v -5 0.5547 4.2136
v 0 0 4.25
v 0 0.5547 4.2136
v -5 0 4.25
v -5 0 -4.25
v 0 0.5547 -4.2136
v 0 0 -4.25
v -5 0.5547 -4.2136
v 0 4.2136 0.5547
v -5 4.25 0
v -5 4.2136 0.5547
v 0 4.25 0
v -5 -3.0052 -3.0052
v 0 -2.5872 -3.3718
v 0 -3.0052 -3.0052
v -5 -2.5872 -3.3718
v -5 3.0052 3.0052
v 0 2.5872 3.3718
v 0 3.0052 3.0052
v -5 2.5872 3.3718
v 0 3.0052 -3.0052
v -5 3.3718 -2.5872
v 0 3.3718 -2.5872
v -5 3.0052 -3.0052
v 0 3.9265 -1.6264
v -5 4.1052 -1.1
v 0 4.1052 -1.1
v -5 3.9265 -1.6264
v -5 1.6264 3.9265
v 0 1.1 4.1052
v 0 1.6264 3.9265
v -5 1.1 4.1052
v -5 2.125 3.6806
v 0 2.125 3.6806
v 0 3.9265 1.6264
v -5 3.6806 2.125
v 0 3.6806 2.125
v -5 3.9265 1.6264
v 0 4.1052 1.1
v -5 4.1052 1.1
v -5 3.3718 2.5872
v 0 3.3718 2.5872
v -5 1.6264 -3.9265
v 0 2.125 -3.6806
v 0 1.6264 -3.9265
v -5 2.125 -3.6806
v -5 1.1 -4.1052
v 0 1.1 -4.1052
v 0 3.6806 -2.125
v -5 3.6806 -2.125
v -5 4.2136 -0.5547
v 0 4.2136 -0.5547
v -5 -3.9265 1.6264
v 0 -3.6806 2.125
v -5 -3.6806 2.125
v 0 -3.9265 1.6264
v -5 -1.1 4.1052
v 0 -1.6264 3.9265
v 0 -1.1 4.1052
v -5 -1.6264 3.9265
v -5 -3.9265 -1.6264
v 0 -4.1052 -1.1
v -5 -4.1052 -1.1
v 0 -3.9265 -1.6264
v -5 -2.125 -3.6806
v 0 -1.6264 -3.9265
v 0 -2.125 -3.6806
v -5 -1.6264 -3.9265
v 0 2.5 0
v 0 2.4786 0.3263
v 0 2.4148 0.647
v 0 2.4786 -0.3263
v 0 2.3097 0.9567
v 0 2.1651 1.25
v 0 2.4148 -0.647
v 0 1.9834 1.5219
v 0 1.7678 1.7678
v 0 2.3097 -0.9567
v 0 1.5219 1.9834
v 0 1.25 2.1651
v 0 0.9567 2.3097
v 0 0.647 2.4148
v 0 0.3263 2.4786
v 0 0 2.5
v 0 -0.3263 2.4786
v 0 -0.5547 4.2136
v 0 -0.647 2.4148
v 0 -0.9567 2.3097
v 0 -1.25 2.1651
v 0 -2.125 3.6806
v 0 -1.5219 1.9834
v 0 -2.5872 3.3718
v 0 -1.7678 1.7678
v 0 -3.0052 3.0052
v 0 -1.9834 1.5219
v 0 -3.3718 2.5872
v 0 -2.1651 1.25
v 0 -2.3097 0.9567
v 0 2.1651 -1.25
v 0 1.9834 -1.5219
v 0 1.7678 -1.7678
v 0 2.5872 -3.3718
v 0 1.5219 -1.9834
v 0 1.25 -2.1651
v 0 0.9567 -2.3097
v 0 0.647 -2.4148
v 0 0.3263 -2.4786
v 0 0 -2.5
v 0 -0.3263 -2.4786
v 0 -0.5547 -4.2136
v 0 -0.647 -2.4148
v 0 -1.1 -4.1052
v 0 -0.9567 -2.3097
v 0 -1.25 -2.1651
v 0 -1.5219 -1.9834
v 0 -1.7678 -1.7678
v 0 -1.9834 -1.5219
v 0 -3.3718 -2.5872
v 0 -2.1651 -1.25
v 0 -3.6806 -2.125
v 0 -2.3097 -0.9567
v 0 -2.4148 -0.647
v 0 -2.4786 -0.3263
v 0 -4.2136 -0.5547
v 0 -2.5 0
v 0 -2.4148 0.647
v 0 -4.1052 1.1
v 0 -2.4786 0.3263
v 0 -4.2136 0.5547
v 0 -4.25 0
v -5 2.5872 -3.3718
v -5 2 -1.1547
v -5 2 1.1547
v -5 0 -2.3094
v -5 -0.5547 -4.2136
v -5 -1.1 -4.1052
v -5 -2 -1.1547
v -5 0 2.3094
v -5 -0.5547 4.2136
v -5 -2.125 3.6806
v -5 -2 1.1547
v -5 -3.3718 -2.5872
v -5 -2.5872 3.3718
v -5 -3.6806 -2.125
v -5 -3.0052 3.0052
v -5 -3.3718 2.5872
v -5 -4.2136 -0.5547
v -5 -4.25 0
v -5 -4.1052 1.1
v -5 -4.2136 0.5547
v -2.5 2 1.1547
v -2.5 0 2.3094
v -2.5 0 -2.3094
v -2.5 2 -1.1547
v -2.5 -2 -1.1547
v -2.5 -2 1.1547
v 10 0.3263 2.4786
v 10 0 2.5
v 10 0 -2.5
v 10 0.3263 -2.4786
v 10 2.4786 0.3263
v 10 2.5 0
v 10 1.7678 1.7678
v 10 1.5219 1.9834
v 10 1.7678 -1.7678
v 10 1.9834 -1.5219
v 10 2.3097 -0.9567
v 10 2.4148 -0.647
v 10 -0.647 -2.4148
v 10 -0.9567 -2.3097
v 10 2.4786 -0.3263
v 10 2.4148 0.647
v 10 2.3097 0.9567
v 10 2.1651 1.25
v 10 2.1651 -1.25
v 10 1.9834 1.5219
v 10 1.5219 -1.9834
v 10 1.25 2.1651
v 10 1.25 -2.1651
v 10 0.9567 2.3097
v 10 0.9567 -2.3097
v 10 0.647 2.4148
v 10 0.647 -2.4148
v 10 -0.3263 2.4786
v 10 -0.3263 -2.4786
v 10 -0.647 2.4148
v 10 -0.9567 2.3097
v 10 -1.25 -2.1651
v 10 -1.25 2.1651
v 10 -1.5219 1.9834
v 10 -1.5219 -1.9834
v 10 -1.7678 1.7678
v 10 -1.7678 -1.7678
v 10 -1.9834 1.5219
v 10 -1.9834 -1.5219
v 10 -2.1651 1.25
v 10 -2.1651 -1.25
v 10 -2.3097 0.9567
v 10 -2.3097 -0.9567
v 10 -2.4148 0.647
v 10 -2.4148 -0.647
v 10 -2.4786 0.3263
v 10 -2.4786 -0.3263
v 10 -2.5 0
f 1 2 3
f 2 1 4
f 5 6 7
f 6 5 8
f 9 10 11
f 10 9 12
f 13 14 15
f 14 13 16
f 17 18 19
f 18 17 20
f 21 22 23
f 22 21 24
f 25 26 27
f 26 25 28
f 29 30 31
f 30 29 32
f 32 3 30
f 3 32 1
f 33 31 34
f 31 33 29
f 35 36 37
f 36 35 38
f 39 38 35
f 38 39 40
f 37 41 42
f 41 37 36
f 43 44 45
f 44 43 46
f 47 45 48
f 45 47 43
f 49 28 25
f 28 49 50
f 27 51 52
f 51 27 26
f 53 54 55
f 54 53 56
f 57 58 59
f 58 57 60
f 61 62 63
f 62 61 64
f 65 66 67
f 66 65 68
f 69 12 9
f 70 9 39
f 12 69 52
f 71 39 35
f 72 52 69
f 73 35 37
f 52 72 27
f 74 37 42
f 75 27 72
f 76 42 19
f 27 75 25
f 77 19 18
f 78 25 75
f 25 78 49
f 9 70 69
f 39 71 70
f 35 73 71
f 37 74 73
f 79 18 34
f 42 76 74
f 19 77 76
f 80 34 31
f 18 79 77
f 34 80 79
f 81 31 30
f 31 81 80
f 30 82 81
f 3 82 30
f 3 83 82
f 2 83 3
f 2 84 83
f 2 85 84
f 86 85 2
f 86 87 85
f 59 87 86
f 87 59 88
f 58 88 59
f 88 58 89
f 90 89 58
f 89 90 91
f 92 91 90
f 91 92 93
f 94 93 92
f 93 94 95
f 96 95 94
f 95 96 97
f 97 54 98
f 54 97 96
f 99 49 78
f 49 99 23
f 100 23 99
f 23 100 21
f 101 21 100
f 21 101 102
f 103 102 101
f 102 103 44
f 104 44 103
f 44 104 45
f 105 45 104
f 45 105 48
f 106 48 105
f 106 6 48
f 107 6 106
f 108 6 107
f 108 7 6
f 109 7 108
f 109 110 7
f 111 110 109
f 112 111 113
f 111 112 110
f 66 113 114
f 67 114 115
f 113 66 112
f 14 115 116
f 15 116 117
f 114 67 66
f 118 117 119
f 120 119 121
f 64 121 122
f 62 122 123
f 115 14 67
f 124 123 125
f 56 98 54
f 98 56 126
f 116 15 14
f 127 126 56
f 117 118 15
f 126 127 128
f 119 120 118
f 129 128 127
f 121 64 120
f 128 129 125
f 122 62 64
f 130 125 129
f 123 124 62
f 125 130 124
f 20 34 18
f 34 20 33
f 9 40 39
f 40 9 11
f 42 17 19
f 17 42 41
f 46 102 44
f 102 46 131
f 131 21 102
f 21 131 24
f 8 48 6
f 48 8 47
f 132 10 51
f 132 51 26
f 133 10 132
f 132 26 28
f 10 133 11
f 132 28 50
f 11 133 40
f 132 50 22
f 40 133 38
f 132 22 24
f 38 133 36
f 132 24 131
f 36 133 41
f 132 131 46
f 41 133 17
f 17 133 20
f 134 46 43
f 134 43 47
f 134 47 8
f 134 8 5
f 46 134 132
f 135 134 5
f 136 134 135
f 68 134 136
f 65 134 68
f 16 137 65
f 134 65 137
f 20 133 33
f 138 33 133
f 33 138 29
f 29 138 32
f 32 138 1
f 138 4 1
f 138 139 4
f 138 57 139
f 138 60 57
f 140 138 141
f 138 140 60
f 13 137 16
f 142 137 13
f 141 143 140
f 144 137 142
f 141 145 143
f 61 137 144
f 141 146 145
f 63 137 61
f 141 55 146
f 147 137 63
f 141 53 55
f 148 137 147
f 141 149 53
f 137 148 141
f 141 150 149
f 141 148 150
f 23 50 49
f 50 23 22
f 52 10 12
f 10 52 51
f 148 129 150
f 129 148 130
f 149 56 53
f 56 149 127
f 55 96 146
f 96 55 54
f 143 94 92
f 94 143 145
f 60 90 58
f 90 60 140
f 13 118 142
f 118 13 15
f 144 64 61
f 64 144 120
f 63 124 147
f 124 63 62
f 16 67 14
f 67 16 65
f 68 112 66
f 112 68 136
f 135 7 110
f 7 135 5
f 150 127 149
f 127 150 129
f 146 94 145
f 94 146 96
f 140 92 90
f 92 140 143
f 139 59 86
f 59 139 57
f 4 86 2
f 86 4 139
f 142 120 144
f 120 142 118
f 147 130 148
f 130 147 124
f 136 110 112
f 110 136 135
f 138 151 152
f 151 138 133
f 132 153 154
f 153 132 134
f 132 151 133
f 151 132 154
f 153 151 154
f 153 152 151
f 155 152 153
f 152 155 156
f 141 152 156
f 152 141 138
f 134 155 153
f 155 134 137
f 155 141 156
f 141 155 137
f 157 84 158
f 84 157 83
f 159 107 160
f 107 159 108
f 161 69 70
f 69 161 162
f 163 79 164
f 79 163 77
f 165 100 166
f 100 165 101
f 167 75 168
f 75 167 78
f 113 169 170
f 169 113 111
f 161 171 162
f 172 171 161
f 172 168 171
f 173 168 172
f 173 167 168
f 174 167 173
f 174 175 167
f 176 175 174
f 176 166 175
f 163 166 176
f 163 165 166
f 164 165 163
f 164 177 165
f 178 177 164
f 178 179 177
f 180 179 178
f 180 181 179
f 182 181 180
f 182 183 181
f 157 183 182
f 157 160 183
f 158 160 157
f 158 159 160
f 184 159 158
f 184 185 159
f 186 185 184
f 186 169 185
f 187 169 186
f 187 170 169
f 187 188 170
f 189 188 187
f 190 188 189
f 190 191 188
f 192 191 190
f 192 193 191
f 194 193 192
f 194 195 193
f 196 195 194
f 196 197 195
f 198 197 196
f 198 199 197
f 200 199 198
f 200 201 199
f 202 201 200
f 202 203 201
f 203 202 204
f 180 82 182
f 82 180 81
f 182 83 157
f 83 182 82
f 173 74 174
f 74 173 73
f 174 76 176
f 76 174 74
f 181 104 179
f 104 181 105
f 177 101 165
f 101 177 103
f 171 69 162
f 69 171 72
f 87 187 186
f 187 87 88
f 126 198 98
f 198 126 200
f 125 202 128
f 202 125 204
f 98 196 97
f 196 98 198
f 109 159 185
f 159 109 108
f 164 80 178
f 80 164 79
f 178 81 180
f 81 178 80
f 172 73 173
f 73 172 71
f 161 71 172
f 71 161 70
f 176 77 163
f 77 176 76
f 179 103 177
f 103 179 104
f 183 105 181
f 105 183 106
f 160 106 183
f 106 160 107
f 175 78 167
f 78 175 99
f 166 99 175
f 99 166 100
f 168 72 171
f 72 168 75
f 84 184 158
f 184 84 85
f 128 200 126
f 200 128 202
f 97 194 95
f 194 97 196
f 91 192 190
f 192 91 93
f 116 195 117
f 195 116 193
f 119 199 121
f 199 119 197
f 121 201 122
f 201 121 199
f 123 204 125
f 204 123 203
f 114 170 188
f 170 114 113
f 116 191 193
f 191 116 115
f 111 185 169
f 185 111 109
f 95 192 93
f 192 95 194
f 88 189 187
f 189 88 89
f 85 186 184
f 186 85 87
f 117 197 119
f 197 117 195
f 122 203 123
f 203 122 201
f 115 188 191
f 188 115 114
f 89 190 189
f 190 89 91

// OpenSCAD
// file: ../../../lib/nutsnbolts/data-access.scad
// Norm Nuts and Bolts - a OpenSCAD library
// Copyright (C) 2012  Johannes Kneer

// This program is free software: you can redistribute it and/or modify
// it under the terms of the GNU General Public License as published by
// the Free Software Foundation, either version 3 of the License, or
// (at your option) any later version.

// This program is distributed in the hope that it will be useful,
// but WITHOUT ANY WARRANTY; without even the implied warranty of
// MERCHANTABILITY or FITNESS FOR A PARTICULAR PURPOSE.  See the
// GNU General Public License for more details.

// You should have received a copy of the GNU General Public License
// along with this program.  If not, see <http://www.gnu.org/licenses/>.


// DATABASE ACCESS FUNCTIONS AND CONSTANTS



// == CONSTANTS ==

// screw table access keys
_NB_S_DESC            = 0;
_NB_S_FAMKEY			    = 1;
_NB_S_LENGTH          = 2;
_NB_S_NOTHREAD_LENGTH = 3;

_NB_F_DESC			      = 0;
_NB_F_OUTER_DIA       = 1;
_NB_F_INNER_DIA       = 2;
_NB_F_LEAD            = 3;
_NB_F_KEY             = 4;
_NB_F_KEY_DEPTH       = 5;
_NB_F_HEAD_HEIGHT     = 6;
_NB_F_HEAD_DIA        = 7;
_NB_F_NUT_KEY         = 8;
_NB_F_NUT_HEIGHT      = 9;
_NB_F_PITCH_FINE      = 10;
_NB_F_PITCH_MEDIUM    = 11;
_NB_F_PITCH_COARSE    = 12;


// == FUNCTIONS ==

// _get_screw("descriptor")   with descriptor = M8x25
//   find the line for a general object in the data matrix

function _get_screw(n) = data_screw[search([n], data_screw)[0]];
function _get_screw_fam(n) = data_screw_fam[search([_get_screw(n)[_NB_S_FAMKEY]], data_screw_fam)[0]];

function _get_fam(n) = data_screw_fam[search([n], data_screw_fam)[0]];


// _get_XXXXX("descriptor") functions
// find a single property in the database

function _get_desc(n)        = _get_screw(n)[_NB_S_DESC];
function _get_famkey(n)         = _get_screw(n)[_NB_S_FAMKEY];
function _get_length(n)      = _get_screw(n)[_NB_S_LENGTH];
function _get_nt_length(n)   = _get_screw(n)[_NB_S_NOTHREAD_LENGTH];

function _get_outer_dia(n)   = _get_screw_fam(n)[_NB_F_OUTER_DIA];
function _get_inner_dia(n)   = _get_screw_fam(n)[_NB_F_INNER_DIA];
function _get_lead(n)        = _get_screw_fam(n)[_NB_F_LEAD];
function _get_head_height(n) = _get_screw_fam(n)[_NB_F_HEAD_HEIGHT];
function _get_head_dia(n)    = _get_screw_fam(n)[_NB_F_HEAD_DIA];
function _get_nut_key(n)     = _get_screw_fam(n)[_NB_F_NUT_KEY];
function _get_nut_height(n)  = _get_screw_fam(n)[_NB_F_NUT_HEIGHT];
function _get_fine_pitch(n)  = _get_screw_fam(n)[_NB_F_PITCH_FINE];
function _get_medium_pitch(n)  = _get_screw_fam(n)[_NB_F_PITCH_MEDIUM];
function _get_coarse_pitch(n)  = _get_screw_fam(n)[_NB_F_PITCH_COARSE];
// main file
/**********************************************************************************************************************
 **
 ** parts/vitamins/screw_M5x10.scad
 **
 ** This file renders a screw of the dimensions specified by the file name.
 **
 **********************************************************************************************************************/

include <../../../lib/nutsnbolts/cyl_head_bolt.scad>;

$fn = 48;
rotate([0, -90, 0])
	screw("M5x10"); 
